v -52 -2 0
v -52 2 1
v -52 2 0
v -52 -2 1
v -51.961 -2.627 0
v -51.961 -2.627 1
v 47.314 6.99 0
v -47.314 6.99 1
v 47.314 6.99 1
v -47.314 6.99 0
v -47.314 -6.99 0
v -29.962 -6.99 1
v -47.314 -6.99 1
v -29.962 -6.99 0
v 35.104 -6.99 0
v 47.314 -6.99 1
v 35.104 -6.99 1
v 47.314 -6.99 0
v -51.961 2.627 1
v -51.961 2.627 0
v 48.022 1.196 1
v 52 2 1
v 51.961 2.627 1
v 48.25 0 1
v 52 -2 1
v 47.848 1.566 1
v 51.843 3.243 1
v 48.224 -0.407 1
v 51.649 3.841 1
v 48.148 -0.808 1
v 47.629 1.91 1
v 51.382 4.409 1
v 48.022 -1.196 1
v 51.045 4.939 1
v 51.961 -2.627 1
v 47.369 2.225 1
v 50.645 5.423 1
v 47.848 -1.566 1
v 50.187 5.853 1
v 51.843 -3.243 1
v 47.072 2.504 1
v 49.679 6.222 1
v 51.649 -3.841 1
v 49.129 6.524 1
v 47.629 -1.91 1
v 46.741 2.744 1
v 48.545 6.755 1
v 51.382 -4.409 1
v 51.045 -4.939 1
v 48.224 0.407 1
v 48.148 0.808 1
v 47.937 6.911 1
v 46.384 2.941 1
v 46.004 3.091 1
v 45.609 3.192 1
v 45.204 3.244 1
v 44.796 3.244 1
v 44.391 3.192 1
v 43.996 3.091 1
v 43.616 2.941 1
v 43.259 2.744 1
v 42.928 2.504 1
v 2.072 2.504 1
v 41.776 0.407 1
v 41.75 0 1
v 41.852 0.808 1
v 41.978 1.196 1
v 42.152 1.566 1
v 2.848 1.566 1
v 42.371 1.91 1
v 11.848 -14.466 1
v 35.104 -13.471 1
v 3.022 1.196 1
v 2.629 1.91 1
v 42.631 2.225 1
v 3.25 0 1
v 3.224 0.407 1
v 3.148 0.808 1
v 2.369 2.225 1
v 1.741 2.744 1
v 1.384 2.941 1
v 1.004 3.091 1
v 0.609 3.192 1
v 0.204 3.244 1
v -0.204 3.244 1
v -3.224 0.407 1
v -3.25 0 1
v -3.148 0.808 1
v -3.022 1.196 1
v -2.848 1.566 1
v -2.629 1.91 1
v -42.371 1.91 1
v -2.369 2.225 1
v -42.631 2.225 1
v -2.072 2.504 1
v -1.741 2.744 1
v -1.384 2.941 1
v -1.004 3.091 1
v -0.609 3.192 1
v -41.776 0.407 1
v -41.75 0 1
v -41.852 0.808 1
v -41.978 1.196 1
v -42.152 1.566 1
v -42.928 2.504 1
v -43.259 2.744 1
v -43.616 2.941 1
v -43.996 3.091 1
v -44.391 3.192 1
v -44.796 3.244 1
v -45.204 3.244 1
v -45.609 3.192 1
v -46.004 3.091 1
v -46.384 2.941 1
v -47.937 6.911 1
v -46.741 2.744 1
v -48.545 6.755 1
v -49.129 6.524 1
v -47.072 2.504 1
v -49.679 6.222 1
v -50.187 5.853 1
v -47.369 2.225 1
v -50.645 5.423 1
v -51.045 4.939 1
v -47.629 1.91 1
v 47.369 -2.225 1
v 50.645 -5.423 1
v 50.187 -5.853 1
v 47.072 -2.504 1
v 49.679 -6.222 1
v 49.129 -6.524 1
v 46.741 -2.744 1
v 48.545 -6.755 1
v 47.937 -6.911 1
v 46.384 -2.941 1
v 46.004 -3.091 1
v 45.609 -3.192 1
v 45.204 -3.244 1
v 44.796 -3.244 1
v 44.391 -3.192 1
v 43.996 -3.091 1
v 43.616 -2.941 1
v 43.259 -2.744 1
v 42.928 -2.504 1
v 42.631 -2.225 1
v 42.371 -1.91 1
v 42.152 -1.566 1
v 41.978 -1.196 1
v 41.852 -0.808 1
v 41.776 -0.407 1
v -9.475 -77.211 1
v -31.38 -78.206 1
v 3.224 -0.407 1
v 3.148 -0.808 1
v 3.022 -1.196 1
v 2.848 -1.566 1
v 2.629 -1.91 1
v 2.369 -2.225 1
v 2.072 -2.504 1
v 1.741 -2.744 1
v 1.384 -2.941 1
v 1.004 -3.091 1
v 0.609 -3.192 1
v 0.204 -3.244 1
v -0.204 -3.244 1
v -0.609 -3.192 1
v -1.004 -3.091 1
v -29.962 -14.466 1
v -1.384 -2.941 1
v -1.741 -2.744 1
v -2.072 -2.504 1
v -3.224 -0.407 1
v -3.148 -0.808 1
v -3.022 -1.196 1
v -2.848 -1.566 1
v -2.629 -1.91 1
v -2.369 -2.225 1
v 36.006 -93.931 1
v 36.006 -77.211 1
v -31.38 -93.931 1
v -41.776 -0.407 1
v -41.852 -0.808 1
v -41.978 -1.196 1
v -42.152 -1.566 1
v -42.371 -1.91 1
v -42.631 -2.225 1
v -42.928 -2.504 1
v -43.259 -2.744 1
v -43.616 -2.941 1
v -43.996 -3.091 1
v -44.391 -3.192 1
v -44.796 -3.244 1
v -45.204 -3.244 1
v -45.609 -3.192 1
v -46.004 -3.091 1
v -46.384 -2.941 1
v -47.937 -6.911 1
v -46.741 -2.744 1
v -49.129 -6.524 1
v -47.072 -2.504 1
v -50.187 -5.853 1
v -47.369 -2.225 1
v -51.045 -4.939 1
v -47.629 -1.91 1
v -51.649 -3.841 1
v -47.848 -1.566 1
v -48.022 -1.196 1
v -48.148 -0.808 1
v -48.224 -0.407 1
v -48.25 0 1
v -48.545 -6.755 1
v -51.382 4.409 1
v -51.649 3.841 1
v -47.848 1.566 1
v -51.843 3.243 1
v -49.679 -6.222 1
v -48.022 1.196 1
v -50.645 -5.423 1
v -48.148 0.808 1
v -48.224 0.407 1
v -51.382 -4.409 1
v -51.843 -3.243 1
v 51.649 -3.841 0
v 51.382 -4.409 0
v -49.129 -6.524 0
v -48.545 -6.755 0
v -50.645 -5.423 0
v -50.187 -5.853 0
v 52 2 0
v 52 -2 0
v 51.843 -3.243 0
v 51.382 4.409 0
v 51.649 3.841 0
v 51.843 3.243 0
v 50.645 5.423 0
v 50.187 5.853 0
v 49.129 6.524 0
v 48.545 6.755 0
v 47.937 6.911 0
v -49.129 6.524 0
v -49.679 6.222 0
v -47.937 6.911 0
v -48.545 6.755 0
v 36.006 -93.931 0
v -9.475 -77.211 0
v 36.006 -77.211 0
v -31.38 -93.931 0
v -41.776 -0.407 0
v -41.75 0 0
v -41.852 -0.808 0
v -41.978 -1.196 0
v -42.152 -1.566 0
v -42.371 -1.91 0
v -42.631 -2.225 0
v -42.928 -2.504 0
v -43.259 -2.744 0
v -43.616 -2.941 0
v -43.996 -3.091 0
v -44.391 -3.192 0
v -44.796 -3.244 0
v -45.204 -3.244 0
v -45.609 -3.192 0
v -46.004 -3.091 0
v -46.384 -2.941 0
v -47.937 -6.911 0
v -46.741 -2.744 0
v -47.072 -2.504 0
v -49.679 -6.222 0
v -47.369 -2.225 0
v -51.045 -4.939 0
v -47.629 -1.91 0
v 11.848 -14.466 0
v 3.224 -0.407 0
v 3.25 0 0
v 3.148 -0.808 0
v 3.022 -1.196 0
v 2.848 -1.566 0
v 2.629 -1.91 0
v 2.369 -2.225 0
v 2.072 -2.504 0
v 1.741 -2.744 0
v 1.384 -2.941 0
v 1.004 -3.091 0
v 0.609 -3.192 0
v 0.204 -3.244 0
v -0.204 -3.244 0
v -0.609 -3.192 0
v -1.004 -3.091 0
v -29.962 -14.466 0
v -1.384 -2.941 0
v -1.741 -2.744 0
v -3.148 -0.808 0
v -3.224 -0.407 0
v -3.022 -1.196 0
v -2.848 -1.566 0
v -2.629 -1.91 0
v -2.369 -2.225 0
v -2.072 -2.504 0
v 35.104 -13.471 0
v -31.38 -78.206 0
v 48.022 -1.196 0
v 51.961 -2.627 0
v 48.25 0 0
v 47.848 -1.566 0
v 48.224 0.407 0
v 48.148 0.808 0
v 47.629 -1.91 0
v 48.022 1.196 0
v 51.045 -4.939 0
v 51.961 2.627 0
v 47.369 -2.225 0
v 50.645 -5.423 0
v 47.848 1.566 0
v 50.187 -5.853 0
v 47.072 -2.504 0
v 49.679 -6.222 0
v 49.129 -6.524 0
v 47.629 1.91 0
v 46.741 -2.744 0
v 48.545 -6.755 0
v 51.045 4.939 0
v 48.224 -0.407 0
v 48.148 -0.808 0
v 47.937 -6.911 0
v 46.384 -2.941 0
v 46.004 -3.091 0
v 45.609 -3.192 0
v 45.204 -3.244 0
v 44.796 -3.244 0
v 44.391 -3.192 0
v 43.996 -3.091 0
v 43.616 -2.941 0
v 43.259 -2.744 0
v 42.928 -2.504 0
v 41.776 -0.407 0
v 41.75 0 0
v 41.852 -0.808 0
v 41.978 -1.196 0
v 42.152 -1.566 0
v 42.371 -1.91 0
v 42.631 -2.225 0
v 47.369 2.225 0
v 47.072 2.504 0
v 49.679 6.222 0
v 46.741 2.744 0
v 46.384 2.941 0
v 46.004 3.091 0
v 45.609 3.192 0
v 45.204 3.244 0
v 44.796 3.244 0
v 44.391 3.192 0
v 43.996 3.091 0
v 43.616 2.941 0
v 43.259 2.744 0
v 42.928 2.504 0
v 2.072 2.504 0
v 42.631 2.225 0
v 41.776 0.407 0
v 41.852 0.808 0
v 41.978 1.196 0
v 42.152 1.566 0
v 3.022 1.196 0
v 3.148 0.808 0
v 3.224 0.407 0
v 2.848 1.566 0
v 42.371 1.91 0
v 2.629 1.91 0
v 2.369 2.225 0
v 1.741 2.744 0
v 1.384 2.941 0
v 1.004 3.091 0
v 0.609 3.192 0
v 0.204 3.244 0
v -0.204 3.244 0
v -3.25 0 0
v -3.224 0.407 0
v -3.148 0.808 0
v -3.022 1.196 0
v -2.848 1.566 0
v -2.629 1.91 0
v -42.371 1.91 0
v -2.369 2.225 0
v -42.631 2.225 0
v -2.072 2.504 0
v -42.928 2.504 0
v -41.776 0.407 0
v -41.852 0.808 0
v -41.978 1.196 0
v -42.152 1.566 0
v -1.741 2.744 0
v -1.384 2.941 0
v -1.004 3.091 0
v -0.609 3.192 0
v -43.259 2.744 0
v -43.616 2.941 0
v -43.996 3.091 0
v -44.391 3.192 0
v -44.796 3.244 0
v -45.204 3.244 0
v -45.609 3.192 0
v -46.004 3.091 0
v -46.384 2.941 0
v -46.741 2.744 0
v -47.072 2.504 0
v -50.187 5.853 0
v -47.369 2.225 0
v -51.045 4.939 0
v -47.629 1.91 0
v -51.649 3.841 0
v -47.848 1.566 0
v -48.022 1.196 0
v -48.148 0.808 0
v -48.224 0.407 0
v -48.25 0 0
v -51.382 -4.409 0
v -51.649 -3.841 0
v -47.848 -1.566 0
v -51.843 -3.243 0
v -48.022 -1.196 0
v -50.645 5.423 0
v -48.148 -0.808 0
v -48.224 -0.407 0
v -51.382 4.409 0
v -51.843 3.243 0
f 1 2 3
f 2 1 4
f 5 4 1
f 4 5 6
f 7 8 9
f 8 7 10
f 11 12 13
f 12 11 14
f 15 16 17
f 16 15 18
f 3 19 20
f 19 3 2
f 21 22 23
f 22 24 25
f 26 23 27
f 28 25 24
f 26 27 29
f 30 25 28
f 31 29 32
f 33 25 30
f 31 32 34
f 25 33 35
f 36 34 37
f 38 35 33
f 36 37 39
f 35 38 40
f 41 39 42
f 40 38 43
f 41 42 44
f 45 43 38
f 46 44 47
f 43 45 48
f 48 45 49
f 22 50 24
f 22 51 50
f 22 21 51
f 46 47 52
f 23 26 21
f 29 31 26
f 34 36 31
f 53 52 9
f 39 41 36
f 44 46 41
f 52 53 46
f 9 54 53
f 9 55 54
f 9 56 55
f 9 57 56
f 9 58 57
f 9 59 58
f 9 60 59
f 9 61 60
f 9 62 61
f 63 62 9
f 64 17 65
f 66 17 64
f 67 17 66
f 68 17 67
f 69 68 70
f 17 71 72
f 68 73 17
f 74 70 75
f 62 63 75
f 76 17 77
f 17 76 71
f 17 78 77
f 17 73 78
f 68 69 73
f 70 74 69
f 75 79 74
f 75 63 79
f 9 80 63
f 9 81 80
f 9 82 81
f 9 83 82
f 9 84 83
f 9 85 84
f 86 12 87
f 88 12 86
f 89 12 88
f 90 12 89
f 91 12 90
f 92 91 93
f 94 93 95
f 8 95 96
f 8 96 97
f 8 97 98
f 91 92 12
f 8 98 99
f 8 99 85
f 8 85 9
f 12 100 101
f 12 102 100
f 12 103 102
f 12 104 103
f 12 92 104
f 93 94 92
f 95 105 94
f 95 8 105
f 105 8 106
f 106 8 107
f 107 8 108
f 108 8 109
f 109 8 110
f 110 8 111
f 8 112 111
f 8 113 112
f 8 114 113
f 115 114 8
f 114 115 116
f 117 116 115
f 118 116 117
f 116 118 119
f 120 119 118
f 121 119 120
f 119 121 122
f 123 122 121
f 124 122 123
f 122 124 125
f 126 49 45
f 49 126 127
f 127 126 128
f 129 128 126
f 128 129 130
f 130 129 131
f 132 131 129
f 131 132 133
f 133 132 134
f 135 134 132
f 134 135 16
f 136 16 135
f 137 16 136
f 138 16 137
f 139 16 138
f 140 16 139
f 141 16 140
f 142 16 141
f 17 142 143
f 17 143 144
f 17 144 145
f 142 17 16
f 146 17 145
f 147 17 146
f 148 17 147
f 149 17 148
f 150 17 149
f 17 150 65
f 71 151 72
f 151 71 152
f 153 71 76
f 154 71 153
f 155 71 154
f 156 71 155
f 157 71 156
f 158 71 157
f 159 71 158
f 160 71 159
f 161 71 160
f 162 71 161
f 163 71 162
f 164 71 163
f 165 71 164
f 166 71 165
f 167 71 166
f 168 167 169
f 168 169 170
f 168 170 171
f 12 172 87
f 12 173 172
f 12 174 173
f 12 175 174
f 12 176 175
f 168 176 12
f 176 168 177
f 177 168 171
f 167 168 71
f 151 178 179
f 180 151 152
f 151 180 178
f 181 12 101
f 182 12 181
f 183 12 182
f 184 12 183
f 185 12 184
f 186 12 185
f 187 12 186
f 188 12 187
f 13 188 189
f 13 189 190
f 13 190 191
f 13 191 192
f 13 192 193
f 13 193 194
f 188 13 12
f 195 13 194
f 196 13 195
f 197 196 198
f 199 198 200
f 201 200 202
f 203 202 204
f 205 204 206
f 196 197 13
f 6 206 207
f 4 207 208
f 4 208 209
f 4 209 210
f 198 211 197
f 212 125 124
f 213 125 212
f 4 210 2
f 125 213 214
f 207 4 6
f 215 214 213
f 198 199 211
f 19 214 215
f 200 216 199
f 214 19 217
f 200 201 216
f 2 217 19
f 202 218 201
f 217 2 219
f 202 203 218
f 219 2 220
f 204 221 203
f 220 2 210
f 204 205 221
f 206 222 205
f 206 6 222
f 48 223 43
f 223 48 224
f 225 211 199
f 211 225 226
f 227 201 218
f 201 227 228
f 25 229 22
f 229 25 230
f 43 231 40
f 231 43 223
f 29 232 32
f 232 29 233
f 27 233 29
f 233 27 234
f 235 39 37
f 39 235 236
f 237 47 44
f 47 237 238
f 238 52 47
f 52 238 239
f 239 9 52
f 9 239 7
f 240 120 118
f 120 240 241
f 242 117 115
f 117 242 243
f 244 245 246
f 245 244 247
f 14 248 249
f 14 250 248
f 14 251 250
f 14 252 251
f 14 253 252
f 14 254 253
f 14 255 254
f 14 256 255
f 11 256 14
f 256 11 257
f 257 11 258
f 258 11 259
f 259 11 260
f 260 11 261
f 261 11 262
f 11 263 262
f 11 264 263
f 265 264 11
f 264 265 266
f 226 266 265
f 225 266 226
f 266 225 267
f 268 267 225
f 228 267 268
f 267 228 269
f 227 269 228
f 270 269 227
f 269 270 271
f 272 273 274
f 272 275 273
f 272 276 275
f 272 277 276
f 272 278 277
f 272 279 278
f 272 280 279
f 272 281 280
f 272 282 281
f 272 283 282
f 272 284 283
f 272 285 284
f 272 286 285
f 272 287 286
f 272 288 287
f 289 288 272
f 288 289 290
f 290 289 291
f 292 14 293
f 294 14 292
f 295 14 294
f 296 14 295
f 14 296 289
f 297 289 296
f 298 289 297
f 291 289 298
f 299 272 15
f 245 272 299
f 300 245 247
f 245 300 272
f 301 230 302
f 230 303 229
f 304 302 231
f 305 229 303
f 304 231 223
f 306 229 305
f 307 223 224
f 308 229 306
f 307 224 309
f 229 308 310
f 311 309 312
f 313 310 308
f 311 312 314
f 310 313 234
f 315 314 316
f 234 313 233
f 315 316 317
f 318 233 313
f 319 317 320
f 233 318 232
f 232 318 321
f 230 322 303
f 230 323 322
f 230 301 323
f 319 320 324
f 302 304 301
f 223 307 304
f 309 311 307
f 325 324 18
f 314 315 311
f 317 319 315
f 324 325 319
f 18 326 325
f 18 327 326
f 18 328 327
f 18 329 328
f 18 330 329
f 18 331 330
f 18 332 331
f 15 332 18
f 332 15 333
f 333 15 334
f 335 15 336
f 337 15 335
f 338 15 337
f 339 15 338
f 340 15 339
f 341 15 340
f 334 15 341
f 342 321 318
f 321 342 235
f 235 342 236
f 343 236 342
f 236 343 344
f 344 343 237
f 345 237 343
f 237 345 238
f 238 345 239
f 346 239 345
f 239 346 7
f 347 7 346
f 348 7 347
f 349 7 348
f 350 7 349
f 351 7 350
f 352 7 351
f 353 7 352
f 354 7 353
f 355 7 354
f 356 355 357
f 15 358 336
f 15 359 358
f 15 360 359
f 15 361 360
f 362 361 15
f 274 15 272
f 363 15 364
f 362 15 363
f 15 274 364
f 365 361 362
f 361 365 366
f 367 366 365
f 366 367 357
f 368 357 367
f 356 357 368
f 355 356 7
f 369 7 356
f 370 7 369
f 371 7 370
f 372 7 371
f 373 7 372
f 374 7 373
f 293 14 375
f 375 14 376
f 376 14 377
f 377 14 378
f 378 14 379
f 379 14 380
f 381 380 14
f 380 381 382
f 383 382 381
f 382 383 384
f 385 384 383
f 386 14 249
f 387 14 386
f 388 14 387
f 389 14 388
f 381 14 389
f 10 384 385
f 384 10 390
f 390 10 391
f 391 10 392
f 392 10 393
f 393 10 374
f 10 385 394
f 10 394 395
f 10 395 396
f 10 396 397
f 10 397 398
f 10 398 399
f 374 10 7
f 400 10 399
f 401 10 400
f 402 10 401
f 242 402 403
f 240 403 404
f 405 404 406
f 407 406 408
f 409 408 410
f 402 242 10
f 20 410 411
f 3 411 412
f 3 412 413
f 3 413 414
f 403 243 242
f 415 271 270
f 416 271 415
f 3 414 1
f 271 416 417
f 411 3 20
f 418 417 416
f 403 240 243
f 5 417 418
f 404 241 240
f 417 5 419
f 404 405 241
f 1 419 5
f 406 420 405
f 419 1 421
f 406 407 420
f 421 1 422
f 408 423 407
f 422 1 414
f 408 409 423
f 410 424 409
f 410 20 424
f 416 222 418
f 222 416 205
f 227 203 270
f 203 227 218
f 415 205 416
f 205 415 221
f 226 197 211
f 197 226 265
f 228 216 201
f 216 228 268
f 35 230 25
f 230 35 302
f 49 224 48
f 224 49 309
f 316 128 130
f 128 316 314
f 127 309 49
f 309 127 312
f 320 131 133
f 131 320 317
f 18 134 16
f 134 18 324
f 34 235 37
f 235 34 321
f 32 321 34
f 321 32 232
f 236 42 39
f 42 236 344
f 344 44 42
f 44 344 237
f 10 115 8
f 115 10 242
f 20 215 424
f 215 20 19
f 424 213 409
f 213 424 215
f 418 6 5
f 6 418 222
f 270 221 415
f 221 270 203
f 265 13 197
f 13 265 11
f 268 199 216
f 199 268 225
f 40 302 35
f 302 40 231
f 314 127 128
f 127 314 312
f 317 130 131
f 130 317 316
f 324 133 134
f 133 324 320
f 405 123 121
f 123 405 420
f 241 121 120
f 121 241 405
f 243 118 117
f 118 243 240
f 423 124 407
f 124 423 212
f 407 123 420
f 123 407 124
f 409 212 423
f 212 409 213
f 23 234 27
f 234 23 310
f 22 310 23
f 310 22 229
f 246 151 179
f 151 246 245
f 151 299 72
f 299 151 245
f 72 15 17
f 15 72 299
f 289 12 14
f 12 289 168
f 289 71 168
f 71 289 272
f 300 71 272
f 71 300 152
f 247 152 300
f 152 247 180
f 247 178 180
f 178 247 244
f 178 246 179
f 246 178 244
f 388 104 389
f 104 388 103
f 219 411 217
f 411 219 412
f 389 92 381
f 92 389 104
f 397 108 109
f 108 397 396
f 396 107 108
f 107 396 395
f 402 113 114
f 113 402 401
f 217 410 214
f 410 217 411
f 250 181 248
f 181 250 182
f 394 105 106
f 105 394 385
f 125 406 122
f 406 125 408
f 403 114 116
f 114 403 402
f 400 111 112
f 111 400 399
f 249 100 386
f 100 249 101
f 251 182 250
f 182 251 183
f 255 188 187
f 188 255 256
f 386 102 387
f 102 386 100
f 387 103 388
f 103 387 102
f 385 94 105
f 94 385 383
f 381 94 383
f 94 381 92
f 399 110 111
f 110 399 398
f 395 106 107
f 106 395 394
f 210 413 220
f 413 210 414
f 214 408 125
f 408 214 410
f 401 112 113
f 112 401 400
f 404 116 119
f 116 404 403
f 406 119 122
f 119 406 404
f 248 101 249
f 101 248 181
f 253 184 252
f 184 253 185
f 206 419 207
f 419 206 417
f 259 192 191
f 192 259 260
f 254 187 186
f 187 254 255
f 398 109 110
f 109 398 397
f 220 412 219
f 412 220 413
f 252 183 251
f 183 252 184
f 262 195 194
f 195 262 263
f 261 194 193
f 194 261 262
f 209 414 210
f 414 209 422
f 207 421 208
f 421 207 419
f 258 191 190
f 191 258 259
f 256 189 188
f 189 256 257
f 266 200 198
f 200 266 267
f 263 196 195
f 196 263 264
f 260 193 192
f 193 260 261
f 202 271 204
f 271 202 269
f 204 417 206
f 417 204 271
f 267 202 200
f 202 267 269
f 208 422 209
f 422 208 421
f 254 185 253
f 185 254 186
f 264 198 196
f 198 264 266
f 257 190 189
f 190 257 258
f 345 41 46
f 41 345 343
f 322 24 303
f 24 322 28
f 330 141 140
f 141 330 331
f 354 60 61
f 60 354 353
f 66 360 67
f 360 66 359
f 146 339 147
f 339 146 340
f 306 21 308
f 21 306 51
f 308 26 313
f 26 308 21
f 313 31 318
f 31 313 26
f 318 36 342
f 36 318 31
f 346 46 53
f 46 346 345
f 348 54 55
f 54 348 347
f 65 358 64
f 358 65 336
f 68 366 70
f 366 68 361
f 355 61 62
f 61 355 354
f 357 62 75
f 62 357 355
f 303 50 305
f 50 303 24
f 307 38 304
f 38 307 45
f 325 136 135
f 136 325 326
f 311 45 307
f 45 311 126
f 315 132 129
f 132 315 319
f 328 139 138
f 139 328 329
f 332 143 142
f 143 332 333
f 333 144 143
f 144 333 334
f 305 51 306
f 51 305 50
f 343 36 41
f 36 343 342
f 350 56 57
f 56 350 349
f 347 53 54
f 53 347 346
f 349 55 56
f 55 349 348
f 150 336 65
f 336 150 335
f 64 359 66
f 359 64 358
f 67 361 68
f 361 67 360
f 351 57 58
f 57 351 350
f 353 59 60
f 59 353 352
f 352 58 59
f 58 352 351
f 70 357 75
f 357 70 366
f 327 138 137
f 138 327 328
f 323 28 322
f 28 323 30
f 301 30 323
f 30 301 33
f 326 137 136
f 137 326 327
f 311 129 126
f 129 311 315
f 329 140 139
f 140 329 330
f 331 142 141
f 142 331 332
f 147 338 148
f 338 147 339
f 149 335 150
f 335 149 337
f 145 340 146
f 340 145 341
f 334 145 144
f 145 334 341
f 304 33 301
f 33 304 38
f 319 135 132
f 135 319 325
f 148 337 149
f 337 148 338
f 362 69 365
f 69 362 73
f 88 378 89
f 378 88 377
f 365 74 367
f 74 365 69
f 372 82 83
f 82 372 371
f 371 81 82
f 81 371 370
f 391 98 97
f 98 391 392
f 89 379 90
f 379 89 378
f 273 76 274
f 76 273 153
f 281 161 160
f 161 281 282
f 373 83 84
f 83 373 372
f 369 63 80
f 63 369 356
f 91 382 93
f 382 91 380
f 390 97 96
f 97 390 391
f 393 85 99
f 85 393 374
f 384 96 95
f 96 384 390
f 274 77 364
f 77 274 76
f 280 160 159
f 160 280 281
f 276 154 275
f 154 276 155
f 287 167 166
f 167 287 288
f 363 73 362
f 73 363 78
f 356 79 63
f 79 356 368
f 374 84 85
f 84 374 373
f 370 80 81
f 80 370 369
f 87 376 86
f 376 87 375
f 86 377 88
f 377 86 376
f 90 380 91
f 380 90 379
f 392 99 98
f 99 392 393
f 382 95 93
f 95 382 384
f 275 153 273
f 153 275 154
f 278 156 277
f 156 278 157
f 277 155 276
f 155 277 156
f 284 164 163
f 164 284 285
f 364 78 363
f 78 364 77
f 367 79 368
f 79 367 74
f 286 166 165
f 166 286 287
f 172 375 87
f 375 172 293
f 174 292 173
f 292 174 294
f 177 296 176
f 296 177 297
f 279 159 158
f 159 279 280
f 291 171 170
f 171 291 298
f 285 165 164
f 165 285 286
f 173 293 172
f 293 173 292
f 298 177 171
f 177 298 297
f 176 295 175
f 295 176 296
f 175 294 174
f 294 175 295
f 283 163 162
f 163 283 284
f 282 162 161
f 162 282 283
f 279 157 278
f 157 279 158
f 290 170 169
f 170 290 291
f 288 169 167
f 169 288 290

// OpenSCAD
$fn = 50;


difference() {
	union() {
		translate(v = [0, 0, 0]) {
			rotate(a = [0, 0, 0]) {
				hull() {
					translate(v = [-47.0000000000, 2.0000000000, 0]) {
						rotate(a = [0, 0, 0]) {
							translate(v = [0, 0, 0]) {
								rotate(a = [0, 0, 0]) {
									cylinder(h = 1, r = 5);
								}
							}
						}
					}
					translate(v = [47.0000000000, 2.0000000000, 0]) {
						rotate(a = [0, 0, 0]) {
							translate(v = [0, 0, 0]) {
								rotate(a = [0, 0, 0]) {
									cylinder(h = 1, r = 5);
								}
							}
						}
					}
					translate(v = [-47.0000000000, -2.0000000000, 0]) {
						rotate(a = [0, 0, 0]) {
							translate(v = [0, 0, 0]) {
								rotate(a = [0, 0, 0]) {
									cylinder(h = 1, r = 5);
								}
							}
						}
					}
					translate(v = [47.0000000000, -2.0000000000, 0]) {
						rotate(a = [0, 0, 0]) {
							translate(v = [0, 0, 0]) {
								rotate(a = [0, 0, 0]) {
									cylinder(h = 1, r = 5);
								}
							}
						}
					}
				}
			}
		}
		translate(v = [0, 0, 0]) {
			rotate(a = [0, 0, 0]) {
				linear_extrude(height = 1) {
					text(font = "DejaVu Sans Mono:style=Bold", halign = "center", size = 95, text = "Z", valign = "top");
				}
			}
		}
	}
	union() {
		translate(v = [-45.0000000000, 0.0000000000, -125.0000000000]) {
			rotate(a = [0, 0, 0]) {
				cylinder(h = 250, r = 3.2500000000);
			}
		}
		translate(v = [45.0000000000, 0.0000000000, -125.0000000000]) {
			rotate(a = [0, 0, 0]) {
				cylinder(h = 250, r = 3.2500000000);
			}
		}
		translate(v = [45.0000000000, 0.0000000000, -125.0000000000]) {
			rotate(a = [0, 0, 0]) {
				cylinder(h = 250, r = 3.2500000000);
			}
		}
		translate(v = [0, 0, -125.0000000000]) {
			rotate(a = [0, 0, 0]) {
				cylinder(h = 250, r = 3.2500000000);
			}
		}
	}
}
